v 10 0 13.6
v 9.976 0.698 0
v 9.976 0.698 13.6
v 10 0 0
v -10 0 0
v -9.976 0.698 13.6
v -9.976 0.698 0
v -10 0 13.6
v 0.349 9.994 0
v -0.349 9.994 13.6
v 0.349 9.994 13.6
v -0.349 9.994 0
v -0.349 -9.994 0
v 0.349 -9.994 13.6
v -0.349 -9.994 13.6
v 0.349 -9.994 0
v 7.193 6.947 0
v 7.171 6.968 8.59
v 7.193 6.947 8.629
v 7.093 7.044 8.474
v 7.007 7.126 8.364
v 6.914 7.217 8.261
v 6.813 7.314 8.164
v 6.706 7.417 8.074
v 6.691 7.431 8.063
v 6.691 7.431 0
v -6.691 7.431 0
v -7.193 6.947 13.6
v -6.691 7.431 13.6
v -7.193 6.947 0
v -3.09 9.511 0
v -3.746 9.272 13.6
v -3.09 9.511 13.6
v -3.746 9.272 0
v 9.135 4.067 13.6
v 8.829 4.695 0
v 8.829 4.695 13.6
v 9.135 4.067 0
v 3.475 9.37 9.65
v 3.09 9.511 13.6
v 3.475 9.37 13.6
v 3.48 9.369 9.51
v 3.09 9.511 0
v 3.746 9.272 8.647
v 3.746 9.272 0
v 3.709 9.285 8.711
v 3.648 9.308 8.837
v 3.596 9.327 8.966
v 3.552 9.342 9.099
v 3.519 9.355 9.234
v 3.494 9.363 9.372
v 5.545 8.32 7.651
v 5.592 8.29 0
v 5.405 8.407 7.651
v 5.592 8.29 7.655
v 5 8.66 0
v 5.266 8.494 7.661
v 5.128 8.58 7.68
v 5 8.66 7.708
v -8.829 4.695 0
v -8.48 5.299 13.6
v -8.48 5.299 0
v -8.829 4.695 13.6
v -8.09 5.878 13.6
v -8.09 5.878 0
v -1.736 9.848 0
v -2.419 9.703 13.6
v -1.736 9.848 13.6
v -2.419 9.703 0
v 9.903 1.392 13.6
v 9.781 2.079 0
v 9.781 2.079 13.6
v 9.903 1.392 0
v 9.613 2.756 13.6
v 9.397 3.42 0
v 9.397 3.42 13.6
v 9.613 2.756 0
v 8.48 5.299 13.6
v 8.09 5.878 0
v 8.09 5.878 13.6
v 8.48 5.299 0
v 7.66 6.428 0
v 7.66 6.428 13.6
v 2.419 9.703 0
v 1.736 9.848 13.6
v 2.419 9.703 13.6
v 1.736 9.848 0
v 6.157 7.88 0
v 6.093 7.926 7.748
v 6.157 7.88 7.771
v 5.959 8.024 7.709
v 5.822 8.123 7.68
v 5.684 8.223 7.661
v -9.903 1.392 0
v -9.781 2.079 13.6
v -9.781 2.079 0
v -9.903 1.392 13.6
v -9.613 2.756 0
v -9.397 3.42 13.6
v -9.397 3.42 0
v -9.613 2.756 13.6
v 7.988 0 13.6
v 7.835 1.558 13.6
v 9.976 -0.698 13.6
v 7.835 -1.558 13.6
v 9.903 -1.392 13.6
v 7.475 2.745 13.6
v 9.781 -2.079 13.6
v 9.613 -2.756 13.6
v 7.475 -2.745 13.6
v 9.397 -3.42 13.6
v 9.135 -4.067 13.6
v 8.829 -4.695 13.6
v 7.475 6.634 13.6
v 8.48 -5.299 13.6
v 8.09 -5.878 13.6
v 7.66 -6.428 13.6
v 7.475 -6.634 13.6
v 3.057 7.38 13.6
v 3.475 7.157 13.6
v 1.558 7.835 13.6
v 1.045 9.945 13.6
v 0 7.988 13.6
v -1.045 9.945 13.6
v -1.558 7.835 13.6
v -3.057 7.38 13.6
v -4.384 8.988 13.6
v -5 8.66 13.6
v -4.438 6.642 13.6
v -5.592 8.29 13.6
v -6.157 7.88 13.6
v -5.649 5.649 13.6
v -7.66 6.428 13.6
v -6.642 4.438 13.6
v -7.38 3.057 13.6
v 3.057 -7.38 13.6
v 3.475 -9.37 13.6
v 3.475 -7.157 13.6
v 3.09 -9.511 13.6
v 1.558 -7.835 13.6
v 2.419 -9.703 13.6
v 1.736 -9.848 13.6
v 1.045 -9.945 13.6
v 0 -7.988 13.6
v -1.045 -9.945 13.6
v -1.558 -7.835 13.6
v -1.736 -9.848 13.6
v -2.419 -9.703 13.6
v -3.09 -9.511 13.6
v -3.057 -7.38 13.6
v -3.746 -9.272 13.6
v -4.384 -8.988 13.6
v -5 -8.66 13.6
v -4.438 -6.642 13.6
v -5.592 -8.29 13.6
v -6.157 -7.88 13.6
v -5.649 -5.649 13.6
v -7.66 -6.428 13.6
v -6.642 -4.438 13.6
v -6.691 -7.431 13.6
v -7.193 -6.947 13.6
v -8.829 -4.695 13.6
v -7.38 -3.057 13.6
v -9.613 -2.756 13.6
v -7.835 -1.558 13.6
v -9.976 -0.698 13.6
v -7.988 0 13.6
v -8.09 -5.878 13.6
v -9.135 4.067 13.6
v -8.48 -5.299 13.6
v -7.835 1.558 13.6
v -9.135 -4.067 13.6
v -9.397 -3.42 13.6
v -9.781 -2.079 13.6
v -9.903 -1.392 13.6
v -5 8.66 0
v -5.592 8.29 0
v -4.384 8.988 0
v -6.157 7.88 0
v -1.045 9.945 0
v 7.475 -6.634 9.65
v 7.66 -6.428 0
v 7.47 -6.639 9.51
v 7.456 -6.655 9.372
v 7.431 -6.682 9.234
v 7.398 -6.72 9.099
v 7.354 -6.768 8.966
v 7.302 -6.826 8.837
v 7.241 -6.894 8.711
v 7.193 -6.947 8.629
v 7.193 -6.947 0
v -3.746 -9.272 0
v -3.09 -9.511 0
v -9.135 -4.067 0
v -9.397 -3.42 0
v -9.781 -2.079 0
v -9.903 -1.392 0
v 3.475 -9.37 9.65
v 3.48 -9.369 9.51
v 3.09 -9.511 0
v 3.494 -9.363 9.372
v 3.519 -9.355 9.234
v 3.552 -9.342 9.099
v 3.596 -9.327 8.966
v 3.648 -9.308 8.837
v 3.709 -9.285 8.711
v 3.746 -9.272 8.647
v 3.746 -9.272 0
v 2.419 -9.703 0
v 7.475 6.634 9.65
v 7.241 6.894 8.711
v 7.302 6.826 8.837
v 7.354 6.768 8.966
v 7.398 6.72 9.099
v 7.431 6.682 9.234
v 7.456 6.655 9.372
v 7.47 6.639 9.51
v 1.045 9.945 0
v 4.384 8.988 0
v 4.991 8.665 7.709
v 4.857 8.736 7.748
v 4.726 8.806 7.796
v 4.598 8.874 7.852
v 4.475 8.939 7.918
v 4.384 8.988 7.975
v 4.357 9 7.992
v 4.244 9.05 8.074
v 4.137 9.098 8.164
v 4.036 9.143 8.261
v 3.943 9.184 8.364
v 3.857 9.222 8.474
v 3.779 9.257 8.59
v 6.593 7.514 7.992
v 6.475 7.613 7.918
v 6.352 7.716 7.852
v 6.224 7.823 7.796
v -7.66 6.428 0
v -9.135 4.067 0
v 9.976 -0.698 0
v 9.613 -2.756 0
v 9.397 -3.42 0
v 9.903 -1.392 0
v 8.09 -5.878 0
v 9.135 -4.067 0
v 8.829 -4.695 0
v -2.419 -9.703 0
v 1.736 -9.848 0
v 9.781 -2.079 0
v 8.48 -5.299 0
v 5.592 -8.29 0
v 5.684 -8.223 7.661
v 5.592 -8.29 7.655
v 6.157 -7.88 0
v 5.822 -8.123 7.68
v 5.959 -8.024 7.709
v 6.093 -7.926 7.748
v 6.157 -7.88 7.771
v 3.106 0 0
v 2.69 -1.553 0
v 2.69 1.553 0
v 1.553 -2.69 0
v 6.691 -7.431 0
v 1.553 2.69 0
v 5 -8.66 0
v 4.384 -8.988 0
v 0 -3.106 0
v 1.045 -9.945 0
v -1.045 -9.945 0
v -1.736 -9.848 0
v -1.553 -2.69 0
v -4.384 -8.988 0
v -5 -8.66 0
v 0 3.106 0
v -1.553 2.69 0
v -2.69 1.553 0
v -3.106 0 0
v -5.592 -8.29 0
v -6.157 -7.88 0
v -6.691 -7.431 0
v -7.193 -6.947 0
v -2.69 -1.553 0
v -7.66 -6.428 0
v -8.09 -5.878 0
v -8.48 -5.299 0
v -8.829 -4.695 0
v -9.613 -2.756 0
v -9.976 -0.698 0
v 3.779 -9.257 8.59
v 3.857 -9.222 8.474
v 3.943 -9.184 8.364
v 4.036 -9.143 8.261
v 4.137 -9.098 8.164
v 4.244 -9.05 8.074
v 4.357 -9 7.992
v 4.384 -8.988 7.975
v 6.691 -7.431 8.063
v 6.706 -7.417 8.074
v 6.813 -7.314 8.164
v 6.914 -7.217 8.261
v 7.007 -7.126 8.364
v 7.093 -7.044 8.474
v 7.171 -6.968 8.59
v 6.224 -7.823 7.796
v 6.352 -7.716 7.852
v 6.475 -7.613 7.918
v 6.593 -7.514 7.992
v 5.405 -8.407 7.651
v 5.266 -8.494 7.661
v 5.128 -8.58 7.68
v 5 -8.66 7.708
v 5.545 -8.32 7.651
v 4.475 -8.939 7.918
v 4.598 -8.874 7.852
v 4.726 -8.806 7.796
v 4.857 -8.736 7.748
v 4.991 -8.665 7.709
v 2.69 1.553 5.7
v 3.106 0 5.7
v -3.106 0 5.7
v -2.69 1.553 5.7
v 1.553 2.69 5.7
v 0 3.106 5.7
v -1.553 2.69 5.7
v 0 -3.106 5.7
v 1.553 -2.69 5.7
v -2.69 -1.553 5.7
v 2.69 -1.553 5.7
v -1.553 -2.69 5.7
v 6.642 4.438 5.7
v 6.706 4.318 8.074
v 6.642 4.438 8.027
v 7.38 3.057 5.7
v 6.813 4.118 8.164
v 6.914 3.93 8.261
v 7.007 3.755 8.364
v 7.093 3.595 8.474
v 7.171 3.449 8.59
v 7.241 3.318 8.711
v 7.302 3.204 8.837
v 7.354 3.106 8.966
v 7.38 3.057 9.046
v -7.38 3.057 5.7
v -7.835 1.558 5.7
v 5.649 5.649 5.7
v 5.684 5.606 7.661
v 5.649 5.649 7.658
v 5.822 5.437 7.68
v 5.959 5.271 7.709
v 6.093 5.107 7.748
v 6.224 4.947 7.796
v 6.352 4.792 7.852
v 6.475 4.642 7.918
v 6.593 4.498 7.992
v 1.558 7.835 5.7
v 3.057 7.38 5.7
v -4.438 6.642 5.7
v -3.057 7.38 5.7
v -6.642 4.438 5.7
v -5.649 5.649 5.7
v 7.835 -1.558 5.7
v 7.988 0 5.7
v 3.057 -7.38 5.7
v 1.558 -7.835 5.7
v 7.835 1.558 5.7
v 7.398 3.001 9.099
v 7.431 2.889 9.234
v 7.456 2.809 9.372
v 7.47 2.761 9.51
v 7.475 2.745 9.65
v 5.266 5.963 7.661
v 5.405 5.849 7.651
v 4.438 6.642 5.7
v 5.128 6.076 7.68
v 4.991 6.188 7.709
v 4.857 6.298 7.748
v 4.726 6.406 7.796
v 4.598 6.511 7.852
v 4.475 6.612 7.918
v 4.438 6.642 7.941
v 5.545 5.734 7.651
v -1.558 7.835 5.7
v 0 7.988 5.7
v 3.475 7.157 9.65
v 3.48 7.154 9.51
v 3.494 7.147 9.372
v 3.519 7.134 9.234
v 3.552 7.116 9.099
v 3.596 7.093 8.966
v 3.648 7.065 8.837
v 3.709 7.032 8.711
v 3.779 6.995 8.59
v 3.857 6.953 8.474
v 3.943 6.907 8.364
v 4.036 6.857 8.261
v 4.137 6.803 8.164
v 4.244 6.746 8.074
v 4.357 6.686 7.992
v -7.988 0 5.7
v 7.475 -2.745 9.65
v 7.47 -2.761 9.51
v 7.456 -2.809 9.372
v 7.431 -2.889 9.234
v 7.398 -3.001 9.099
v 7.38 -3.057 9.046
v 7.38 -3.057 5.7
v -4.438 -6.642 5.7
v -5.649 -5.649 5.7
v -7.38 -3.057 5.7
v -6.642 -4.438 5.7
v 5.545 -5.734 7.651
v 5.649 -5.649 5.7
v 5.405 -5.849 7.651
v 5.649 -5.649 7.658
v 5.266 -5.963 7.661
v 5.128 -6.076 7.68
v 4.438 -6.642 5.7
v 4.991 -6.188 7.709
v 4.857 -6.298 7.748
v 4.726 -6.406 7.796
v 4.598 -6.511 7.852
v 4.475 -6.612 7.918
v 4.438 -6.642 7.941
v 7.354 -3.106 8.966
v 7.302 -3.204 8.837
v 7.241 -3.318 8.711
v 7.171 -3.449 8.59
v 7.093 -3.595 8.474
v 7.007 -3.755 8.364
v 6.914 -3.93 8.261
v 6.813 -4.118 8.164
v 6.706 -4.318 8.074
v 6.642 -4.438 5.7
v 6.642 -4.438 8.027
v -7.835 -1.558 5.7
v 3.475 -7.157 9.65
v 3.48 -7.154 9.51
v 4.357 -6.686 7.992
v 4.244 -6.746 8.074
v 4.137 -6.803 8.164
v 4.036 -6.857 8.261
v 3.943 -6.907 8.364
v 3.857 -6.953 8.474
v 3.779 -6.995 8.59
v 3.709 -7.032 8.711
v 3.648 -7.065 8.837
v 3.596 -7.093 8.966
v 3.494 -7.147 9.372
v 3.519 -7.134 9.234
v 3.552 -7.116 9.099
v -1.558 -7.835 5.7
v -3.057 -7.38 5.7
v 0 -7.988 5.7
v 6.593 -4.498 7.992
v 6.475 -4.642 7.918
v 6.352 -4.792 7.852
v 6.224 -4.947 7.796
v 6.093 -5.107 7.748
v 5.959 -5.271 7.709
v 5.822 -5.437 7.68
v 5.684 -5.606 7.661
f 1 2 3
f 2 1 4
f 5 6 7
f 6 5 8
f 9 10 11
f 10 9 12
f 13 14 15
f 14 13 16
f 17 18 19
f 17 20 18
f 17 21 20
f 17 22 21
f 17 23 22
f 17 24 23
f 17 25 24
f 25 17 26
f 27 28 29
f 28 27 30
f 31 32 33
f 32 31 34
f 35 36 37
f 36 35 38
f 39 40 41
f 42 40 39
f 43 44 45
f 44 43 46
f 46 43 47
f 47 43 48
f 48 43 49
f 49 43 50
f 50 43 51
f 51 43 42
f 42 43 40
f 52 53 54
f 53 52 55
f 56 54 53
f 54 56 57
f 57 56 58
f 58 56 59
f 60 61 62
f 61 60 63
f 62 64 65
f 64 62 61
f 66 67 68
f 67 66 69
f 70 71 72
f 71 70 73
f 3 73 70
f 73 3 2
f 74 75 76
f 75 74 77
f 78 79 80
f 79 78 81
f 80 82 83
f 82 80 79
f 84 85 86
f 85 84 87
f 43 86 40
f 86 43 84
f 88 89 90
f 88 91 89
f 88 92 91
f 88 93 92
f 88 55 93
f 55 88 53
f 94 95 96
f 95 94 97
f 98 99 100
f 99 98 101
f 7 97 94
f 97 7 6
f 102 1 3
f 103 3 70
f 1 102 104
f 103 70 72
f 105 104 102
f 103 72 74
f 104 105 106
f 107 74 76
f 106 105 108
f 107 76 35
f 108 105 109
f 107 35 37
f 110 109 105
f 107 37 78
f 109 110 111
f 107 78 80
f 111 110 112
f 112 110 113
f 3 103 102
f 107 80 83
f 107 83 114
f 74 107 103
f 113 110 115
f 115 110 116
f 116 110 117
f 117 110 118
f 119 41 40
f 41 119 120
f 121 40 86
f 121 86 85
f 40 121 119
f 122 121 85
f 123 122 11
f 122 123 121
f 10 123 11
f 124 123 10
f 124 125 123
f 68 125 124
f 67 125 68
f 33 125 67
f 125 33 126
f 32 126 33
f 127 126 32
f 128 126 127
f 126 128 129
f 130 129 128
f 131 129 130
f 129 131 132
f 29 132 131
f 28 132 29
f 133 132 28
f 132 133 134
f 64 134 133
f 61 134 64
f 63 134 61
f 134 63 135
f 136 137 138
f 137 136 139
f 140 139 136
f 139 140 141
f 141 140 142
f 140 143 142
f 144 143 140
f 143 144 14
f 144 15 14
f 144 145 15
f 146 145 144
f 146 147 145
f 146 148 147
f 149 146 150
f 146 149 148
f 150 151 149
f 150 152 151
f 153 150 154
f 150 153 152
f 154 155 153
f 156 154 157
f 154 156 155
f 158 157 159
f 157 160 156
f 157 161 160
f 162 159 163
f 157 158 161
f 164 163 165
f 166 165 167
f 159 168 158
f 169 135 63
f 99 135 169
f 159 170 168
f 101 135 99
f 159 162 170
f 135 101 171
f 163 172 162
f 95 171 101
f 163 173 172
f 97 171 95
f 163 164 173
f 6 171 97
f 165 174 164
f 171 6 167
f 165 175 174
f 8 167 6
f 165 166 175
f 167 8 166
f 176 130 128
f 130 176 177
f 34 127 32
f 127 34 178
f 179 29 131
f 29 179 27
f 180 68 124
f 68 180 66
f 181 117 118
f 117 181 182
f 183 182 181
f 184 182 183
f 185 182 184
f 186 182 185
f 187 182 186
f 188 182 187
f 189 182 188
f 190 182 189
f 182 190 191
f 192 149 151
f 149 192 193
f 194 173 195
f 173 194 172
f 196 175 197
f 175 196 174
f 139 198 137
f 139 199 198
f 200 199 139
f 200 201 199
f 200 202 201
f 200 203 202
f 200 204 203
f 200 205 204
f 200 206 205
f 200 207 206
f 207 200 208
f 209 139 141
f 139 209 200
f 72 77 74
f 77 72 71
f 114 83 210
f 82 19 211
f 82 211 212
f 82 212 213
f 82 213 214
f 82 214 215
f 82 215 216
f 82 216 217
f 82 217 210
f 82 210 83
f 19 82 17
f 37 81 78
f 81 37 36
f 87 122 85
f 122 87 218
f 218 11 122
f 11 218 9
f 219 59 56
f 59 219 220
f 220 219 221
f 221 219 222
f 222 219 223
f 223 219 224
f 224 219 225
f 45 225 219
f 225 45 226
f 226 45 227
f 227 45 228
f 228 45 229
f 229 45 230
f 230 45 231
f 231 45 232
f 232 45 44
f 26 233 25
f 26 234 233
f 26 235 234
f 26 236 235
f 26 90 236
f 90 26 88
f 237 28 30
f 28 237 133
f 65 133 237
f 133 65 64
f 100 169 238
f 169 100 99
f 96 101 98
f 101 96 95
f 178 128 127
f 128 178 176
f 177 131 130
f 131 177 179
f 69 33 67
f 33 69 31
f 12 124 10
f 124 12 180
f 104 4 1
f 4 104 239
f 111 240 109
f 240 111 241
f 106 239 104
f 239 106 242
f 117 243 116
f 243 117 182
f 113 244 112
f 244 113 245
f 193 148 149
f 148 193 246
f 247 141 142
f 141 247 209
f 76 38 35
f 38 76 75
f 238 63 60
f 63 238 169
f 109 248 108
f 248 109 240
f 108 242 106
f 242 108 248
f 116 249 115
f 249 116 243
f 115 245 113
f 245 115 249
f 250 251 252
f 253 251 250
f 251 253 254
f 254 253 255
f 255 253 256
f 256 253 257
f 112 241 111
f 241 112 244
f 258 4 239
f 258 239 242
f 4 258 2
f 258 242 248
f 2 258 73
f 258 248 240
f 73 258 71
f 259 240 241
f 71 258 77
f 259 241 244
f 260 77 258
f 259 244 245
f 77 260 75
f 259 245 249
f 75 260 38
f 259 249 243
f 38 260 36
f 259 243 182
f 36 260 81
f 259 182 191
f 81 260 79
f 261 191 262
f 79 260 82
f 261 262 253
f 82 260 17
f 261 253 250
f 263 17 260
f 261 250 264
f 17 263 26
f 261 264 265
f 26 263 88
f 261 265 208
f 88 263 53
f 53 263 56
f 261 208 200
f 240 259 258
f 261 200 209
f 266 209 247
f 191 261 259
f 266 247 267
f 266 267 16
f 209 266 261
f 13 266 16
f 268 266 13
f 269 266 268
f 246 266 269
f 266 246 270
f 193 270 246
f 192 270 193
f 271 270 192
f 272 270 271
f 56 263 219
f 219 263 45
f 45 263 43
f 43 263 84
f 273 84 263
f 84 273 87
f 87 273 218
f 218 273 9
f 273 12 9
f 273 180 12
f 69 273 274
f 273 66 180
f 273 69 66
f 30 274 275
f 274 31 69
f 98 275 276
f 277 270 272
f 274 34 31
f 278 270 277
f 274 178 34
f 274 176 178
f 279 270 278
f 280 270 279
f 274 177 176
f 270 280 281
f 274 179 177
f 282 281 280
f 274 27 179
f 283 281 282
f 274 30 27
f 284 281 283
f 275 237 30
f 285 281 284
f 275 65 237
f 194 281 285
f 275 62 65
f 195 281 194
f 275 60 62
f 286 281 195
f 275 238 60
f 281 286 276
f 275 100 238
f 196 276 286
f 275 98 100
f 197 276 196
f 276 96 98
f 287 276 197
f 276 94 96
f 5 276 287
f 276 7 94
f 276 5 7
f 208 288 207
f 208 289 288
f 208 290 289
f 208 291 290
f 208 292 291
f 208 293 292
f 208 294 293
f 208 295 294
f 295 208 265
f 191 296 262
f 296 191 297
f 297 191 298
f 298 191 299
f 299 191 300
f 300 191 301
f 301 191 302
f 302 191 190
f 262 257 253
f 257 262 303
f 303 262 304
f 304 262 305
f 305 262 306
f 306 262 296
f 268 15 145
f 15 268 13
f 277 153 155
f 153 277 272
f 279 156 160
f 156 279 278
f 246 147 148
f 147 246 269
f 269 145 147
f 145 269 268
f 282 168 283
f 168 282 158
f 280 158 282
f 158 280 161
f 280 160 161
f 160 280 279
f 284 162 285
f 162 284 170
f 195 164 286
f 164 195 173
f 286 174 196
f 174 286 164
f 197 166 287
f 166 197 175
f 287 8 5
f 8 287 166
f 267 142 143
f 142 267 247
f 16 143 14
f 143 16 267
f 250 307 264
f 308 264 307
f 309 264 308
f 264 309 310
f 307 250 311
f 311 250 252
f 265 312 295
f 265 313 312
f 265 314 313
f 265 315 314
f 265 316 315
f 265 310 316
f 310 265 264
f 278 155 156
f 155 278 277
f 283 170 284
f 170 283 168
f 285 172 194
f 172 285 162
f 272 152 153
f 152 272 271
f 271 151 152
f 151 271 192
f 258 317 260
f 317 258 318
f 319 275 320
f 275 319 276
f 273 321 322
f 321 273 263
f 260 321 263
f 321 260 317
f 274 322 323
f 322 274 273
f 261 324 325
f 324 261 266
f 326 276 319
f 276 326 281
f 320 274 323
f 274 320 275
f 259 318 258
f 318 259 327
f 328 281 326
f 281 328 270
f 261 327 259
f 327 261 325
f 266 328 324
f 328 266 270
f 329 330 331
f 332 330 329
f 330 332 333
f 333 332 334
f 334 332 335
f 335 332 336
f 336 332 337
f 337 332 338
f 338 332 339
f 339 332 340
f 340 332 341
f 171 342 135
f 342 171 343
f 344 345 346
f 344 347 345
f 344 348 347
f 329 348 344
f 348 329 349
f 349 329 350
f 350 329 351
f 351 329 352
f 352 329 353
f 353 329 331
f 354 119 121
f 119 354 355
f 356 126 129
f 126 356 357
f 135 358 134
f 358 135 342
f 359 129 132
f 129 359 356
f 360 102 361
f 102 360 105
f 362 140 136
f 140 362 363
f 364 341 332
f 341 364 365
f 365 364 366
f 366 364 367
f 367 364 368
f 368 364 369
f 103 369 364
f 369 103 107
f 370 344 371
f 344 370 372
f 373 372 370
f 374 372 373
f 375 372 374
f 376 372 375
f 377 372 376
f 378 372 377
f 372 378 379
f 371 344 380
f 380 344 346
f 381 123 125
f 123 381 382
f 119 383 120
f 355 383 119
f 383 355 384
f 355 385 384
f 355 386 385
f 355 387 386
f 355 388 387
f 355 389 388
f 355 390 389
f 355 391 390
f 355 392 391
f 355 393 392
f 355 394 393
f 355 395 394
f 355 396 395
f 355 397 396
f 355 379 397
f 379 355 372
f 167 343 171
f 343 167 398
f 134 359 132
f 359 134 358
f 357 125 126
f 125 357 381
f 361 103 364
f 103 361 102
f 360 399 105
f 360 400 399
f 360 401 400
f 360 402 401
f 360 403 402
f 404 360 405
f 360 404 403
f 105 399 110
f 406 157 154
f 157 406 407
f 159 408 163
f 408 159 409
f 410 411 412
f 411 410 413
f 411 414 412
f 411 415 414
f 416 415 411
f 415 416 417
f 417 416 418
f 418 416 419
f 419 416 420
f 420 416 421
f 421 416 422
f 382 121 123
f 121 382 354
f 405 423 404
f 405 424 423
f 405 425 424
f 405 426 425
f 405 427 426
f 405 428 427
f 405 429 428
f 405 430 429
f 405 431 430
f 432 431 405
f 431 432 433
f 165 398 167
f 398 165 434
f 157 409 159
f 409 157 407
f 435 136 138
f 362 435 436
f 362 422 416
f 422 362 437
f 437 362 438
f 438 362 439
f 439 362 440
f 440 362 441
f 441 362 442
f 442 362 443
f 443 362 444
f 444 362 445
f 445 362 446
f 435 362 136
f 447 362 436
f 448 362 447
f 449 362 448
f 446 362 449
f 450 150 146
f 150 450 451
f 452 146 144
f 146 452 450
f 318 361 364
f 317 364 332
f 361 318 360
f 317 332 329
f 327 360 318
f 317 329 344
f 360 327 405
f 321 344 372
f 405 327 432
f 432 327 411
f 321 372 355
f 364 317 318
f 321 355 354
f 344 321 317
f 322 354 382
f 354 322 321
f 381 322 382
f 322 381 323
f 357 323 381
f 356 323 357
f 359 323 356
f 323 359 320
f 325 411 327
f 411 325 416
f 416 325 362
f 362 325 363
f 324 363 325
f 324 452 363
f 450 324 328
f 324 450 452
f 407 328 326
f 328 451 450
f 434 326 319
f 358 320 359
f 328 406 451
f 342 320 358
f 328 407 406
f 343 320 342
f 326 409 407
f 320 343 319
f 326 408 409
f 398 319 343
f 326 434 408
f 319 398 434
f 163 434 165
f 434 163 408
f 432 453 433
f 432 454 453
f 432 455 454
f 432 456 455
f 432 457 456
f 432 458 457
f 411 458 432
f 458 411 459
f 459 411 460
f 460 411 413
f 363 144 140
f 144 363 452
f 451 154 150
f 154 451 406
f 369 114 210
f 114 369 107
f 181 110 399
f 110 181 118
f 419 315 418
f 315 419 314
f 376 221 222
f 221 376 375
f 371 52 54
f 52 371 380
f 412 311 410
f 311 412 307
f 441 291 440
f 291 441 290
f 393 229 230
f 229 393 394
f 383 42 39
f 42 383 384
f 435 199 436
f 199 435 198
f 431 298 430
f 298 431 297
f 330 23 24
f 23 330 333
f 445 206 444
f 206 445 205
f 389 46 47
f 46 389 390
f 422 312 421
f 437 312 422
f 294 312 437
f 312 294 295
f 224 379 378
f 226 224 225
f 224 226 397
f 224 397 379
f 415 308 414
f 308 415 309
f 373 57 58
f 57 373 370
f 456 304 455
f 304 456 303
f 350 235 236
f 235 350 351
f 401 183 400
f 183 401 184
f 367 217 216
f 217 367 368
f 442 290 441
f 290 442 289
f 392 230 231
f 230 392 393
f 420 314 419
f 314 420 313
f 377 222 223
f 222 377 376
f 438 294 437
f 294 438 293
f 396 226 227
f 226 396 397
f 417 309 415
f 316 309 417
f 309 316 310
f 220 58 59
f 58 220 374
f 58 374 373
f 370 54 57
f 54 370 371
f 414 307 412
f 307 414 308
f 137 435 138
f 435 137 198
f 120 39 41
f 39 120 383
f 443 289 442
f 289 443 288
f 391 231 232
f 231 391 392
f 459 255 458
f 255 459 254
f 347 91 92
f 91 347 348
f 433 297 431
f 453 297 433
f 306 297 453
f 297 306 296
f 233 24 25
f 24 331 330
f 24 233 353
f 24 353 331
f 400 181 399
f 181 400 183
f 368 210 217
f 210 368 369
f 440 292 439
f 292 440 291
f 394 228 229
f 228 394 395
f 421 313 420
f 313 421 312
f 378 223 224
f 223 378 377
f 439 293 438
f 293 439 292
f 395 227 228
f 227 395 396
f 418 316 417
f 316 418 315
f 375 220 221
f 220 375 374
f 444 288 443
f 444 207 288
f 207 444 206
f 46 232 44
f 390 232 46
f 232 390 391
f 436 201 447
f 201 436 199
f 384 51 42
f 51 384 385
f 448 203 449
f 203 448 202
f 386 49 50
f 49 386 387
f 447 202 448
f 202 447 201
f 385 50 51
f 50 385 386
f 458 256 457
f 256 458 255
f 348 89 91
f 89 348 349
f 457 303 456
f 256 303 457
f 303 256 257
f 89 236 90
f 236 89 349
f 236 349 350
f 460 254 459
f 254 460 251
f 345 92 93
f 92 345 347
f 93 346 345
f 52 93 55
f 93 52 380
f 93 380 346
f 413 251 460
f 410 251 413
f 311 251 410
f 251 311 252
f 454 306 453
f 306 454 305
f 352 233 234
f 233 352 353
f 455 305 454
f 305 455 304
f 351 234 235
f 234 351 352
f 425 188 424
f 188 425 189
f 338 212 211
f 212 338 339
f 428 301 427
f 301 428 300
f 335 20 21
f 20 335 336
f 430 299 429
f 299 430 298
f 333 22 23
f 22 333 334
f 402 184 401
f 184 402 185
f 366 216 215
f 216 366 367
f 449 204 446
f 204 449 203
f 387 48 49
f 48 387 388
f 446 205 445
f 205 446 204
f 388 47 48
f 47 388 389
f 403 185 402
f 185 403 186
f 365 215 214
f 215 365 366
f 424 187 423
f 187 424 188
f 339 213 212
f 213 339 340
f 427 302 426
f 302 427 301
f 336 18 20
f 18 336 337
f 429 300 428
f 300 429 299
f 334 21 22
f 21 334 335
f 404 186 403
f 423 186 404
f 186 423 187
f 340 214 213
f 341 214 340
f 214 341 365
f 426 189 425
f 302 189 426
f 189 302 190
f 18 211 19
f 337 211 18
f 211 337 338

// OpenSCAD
// file: ../polyhole.scad
// The Cylinder is dead! Long live the Cylinder!
// A module for a polyhole by radius, based on Nophead's work.

module polyhole(h, r, cent = false)
{
    n = max(round(4 * r), 3);
    cylinder(h = h, r = r / cos(180 / n), $fn = n, center = cent);
}
// main file
use<../polyhole.scad>

LeadSpacer();

module LeadSpacer()
{
    hei = 30-(6+10.4);
    
    difference()
    {
        cylinder(h = hei, r = 20/2, $fn = 90);
        polyhole(hei, 6/2);
        translate([0, 0, hei-7.9])
            polyhole(7.9, 15.9/2);
        hull()
        {
            translate([6/2+(15.9-6)/4, 0, hei-7.9/2])
                rotate([90, 0, 0])
                    cylinder(h = 20, r = 2, center = true, $fn = 90);
            translate([6/2+(15.9-6)/4, 0, hei])
                rotate([90, 0, 0])
                    cylinder(h = 20, r = 2, center = true, $fn = 90);
        }
    }
}
